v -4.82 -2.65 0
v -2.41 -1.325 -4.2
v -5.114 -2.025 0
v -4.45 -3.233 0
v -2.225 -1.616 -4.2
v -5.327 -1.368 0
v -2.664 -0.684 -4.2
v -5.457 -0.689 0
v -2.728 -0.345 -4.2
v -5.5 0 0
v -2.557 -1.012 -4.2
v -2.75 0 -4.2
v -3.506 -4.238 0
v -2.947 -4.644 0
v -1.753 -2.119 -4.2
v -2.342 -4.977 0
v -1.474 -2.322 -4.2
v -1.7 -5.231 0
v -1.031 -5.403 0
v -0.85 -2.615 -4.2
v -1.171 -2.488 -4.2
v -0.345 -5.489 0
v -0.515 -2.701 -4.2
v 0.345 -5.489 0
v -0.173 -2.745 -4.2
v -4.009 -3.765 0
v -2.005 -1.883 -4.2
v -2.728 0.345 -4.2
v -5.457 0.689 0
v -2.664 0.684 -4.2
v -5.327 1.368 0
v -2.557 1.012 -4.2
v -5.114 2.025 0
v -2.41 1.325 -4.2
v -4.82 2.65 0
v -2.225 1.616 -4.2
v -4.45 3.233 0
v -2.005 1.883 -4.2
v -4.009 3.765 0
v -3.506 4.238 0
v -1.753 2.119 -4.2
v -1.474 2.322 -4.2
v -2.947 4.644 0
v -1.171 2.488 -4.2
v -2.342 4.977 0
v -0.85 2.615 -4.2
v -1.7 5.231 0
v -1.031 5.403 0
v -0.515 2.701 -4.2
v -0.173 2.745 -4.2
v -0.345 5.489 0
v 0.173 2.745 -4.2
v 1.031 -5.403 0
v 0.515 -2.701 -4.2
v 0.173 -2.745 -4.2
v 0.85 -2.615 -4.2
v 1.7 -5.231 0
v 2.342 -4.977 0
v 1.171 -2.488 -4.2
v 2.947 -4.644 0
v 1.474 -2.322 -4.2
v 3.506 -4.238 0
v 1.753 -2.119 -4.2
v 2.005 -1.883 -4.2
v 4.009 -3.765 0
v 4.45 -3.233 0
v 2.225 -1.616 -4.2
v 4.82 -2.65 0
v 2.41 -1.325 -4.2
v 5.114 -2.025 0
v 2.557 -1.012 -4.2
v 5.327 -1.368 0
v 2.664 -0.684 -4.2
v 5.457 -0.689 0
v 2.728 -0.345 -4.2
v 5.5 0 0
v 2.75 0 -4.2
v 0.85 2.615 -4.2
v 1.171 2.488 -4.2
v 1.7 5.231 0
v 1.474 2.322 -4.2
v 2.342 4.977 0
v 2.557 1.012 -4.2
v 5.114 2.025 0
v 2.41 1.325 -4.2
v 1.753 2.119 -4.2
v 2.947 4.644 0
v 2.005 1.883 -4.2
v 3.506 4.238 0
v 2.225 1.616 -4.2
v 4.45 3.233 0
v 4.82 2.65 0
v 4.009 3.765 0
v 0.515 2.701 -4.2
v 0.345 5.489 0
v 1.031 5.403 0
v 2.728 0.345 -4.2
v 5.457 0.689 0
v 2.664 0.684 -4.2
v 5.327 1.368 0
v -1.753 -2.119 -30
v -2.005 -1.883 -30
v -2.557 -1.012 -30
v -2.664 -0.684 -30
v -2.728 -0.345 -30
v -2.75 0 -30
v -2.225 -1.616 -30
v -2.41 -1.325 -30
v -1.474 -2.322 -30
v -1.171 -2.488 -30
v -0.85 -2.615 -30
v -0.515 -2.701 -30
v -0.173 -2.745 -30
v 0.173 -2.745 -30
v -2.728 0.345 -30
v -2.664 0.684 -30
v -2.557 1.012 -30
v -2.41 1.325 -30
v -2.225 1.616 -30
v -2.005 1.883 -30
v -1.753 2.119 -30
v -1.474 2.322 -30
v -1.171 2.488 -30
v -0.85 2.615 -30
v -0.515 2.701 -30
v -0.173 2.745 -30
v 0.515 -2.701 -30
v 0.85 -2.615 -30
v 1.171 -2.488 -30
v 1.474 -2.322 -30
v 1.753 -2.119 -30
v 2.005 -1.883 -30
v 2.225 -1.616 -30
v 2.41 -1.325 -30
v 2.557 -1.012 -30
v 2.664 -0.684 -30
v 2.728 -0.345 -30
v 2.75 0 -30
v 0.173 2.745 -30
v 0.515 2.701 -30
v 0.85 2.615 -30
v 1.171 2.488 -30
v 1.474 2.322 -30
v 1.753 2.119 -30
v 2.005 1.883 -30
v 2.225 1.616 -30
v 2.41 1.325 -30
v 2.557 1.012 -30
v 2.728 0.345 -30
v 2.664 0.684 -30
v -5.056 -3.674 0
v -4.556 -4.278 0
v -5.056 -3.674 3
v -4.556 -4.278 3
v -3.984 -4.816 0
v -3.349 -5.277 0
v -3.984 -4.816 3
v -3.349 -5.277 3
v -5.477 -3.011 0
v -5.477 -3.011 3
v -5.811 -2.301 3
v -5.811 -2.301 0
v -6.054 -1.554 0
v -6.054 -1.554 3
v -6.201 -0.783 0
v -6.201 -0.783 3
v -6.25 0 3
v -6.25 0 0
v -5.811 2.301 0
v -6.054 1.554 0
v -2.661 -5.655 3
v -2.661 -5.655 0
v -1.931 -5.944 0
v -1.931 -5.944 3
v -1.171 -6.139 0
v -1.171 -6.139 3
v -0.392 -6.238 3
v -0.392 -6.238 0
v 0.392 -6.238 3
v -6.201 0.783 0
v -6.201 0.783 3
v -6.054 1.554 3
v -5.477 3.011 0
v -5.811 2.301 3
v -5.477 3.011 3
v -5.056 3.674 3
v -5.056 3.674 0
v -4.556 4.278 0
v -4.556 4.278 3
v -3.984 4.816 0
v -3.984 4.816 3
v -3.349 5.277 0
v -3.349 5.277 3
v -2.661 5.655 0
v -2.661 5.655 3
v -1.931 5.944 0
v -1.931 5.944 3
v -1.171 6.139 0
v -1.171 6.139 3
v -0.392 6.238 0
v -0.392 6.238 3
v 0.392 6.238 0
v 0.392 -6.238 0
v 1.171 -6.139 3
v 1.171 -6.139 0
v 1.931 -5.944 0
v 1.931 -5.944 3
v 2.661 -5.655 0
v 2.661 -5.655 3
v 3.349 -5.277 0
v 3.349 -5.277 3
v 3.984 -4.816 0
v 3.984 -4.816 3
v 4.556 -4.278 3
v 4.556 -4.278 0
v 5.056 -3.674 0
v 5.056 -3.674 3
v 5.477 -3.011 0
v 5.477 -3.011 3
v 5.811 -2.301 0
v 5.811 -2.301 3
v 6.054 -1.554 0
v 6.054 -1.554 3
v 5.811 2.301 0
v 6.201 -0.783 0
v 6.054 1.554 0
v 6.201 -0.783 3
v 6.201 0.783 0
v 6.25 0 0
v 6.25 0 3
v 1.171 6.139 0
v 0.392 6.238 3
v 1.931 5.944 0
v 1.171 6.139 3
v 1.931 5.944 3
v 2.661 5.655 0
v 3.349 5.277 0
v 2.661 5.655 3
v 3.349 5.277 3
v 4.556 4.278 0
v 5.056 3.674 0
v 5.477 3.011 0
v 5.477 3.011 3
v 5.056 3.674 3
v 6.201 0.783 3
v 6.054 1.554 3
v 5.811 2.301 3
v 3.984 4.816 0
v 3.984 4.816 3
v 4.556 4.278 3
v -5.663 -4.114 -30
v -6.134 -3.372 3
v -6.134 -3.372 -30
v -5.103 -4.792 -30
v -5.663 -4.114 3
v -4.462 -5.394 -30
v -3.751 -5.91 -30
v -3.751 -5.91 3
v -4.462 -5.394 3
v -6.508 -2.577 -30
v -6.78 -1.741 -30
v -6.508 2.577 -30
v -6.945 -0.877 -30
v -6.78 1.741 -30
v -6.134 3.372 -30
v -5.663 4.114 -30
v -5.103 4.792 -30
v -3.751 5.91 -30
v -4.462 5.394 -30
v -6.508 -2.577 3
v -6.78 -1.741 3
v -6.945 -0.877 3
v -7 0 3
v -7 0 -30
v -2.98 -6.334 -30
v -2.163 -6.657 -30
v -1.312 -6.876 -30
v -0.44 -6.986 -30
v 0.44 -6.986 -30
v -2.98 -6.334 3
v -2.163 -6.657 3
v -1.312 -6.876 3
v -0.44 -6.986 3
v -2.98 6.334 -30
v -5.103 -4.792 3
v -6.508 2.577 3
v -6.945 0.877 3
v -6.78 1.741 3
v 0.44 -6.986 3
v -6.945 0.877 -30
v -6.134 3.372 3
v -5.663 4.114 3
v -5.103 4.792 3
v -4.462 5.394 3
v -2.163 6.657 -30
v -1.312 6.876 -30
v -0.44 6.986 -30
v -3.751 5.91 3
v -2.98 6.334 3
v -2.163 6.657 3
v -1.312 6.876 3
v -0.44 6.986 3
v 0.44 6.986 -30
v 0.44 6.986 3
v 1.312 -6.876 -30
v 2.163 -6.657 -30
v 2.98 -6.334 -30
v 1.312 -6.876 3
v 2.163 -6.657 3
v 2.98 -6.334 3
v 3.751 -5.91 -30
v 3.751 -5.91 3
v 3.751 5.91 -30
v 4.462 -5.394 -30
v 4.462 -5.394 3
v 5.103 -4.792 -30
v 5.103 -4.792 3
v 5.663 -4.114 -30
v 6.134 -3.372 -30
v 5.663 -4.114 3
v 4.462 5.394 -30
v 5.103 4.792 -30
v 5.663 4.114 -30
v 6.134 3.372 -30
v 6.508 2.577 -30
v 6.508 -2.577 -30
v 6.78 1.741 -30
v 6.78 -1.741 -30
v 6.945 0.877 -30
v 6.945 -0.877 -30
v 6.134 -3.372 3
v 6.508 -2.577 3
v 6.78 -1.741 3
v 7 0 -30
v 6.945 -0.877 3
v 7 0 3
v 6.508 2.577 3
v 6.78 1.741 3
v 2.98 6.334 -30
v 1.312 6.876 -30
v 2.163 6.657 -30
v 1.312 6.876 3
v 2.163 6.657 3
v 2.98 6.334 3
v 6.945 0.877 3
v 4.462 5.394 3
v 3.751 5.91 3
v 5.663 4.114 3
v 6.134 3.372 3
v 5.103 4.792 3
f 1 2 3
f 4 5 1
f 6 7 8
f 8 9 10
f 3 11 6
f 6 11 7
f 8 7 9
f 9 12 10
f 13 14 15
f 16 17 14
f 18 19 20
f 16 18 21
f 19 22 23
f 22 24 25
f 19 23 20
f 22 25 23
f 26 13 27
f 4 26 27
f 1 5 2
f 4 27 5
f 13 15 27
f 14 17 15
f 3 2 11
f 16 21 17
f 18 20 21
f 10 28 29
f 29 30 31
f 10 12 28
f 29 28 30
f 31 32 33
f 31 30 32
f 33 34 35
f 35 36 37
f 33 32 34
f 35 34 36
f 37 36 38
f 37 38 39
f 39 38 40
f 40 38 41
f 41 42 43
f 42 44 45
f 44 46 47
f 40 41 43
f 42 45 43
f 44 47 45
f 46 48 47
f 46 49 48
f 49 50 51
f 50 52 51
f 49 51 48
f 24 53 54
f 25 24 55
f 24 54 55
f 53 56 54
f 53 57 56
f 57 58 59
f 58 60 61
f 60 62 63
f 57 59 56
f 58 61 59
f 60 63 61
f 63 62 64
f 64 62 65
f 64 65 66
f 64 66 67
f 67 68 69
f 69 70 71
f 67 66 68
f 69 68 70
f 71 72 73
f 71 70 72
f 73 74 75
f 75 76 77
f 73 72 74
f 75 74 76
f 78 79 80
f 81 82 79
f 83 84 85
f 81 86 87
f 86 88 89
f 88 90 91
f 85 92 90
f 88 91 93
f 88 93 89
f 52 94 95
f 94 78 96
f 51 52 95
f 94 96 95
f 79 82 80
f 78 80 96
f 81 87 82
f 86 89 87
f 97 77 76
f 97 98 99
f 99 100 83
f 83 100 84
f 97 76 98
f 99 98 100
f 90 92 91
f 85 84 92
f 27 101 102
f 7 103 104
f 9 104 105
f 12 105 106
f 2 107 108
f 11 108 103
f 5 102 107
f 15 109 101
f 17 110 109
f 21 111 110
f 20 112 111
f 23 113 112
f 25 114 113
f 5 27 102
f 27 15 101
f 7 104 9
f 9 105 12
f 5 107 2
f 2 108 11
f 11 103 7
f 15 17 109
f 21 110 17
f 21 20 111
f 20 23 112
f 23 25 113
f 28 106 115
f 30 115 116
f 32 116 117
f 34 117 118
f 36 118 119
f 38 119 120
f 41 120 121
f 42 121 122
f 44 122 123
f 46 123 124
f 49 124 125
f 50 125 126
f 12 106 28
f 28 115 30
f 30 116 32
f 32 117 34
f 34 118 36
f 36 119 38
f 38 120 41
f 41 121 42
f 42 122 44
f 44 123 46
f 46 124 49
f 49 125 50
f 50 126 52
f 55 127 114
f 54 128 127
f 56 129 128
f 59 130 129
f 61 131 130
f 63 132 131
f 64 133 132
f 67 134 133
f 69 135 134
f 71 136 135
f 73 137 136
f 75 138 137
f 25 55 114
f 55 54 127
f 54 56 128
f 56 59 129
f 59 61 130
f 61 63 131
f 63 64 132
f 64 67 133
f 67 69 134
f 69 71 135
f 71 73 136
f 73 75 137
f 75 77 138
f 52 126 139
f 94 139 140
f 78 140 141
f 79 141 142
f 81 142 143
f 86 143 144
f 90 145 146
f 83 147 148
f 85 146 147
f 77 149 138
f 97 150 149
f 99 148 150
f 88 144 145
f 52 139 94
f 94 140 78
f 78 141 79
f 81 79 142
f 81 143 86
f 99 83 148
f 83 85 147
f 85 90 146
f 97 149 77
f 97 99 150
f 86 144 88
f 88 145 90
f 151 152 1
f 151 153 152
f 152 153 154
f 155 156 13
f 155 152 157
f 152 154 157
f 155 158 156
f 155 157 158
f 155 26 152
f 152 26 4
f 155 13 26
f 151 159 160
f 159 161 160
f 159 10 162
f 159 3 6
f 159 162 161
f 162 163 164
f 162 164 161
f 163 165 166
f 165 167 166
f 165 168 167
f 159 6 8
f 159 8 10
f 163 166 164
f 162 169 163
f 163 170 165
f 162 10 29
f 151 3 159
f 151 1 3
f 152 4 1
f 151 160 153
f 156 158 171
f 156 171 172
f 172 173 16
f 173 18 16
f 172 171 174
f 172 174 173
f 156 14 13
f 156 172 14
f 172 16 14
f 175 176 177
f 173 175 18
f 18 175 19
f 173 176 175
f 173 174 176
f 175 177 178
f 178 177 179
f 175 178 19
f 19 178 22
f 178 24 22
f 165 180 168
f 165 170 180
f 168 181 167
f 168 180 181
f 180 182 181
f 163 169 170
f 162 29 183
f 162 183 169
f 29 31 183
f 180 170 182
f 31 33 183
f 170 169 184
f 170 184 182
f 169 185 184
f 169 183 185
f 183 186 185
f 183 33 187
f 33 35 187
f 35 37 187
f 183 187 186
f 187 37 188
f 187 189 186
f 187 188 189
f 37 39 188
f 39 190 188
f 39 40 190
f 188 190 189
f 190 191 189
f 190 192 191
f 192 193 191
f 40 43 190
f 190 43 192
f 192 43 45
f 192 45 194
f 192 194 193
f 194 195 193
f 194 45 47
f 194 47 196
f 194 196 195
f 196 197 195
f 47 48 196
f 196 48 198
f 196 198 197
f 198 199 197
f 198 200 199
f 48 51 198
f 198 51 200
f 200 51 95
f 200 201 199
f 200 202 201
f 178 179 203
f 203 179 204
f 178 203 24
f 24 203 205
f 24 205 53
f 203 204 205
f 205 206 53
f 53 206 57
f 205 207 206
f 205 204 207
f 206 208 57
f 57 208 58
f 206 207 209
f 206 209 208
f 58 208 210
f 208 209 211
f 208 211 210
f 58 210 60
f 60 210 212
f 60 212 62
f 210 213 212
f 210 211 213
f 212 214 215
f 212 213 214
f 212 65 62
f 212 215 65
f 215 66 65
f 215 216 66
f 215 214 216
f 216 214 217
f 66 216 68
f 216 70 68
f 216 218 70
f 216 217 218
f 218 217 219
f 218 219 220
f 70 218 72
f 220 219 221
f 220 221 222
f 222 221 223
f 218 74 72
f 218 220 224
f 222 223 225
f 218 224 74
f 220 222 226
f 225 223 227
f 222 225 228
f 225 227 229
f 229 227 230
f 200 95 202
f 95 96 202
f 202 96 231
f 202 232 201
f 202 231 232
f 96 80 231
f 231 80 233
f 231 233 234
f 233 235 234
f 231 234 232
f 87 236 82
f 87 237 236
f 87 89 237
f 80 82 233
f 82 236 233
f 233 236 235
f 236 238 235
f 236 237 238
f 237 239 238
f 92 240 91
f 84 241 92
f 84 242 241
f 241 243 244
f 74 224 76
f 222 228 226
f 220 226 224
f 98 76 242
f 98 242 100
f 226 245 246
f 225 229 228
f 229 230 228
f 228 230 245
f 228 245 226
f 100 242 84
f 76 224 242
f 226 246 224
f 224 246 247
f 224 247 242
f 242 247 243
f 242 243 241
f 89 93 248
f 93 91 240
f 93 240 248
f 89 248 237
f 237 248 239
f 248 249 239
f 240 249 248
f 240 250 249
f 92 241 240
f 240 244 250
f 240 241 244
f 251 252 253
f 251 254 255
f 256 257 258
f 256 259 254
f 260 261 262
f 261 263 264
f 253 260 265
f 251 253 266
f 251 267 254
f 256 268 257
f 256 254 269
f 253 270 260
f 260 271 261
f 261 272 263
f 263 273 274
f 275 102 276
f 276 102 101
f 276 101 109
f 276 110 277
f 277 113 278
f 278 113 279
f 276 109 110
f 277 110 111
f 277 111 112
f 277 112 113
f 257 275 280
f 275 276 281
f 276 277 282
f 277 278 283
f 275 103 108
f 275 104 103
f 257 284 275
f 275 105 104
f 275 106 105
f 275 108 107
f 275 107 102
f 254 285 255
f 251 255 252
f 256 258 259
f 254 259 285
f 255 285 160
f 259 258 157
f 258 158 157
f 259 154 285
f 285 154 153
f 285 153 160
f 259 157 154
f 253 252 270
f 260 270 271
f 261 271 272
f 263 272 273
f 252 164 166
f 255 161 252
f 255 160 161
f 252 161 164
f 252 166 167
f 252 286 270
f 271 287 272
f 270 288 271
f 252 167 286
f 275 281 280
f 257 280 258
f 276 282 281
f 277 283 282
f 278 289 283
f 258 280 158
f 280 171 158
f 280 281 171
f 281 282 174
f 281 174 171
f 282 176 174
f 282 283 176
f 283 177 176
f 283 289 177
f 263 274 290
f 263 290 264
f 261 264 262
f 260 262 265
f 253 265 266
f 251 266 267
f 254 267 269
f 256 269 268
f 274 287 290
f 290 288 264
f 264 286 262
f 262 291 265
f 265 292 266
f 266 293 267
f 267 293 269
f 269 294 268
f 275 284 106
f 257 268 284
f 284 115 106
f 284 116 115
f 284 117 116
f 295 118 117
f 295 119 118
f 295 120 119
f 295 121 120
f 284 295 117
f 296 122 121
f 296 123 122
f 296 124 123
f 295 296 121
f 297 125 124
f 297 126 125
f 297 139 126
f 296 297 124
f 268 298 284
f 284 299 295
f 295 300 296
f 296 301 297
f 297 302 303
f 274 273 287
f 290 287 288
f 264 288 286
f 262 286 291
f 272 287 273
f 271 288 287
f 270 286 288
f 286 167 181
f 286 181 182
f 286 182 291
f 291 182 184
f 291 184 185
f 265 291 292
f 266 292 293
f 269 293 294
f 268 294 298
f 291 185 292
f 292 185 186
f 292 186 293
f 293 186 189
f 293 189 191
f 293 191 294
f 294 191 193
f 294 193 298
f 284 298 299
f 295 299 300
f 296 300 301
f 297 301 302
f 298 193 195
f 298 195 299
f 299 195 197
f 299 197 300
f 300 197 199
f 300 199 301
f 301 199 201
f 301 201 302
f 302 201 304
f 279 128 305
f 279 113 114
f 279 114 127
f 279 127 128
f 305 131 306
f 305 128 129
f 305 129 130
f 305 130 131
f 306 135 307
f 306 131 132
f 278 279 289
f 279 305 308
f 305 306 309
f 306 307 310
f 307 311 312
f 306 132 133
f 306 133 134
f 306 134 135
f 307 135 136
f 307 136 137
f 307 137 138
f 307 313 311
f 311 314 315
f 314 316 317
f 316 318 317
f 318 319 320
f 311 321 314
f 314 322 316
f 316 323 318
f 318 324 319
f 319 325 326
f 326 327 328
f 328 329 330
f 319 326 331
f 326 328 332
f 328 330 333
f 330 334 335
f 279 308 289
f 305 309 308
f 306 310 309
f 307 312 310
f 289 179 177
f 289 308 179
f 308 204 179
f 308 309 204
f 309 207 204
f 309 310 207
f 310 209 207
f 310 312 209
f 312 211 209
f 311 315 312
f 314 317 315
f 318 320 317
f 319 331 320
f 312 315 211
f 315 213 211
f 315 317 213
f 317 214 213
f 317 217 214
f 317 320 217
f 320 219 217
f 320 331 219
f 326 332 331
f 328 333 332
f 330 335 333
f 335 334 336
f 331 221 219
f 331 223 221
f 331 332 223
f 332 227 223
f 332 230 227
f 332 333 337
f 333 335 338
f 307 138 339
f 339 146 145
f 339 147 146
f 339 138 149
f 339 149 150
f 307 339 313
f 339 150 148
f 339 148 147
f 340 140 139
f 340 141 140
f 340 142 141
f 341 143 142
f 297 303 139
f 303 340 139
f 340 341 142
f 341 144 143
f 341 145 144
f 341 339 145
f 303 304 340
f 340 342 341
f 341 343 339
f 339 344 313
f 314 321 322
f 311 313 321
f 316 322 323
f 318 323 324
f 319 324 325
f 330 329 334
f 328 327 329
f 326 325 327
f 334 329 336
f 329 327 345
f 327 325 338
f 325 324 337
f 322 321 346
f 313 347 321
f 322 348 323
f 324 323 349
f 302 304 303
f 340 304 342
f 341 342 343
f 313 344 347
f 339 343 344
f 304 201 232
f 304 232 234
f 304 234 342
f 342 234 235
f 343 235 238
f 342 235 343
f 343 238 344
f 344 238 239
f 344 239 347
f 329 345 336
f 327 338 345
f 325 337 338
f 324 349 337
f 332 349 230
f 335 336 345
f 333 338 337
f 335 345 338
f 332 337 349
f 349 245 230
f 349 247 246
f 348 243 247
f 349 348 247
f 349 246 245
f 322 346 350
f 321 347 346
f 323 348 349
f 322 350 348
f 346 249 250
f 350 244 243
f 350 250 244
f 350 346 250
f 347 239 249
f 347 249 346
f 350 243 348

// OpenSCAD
$fn = 50;

difference() {
	union() {
		translate(v = [0, 0, -30.0]) {
			cylinder(h = 33, r = 7.0);
		}
	}
	union() {
		translate(v = [0, 0, 0]) {
			rotate(a = [0, 0, 0]) {
				difference() {
					union() {
						translate(v = [0, 0, -33.0]) {
							cylinder(h = 33, r = 2.25);
						}
						translate(v = [0, 0, -4.2]) {
							cylinder(h = 4.2, r1 = 2.75, r2 = 5.5);
						}
						translate(v = [0, 0, -33.0]) {
							cylinder(h = 33, r = 2.75);
						}
						translate(v = [0, 0, -33.0]) {
							cylinder(h = 33, r = 2.25);
						}
					}
					union();
				}
			}
		}
		#cylinder(h = 3, r = 6.25);
	}
}
